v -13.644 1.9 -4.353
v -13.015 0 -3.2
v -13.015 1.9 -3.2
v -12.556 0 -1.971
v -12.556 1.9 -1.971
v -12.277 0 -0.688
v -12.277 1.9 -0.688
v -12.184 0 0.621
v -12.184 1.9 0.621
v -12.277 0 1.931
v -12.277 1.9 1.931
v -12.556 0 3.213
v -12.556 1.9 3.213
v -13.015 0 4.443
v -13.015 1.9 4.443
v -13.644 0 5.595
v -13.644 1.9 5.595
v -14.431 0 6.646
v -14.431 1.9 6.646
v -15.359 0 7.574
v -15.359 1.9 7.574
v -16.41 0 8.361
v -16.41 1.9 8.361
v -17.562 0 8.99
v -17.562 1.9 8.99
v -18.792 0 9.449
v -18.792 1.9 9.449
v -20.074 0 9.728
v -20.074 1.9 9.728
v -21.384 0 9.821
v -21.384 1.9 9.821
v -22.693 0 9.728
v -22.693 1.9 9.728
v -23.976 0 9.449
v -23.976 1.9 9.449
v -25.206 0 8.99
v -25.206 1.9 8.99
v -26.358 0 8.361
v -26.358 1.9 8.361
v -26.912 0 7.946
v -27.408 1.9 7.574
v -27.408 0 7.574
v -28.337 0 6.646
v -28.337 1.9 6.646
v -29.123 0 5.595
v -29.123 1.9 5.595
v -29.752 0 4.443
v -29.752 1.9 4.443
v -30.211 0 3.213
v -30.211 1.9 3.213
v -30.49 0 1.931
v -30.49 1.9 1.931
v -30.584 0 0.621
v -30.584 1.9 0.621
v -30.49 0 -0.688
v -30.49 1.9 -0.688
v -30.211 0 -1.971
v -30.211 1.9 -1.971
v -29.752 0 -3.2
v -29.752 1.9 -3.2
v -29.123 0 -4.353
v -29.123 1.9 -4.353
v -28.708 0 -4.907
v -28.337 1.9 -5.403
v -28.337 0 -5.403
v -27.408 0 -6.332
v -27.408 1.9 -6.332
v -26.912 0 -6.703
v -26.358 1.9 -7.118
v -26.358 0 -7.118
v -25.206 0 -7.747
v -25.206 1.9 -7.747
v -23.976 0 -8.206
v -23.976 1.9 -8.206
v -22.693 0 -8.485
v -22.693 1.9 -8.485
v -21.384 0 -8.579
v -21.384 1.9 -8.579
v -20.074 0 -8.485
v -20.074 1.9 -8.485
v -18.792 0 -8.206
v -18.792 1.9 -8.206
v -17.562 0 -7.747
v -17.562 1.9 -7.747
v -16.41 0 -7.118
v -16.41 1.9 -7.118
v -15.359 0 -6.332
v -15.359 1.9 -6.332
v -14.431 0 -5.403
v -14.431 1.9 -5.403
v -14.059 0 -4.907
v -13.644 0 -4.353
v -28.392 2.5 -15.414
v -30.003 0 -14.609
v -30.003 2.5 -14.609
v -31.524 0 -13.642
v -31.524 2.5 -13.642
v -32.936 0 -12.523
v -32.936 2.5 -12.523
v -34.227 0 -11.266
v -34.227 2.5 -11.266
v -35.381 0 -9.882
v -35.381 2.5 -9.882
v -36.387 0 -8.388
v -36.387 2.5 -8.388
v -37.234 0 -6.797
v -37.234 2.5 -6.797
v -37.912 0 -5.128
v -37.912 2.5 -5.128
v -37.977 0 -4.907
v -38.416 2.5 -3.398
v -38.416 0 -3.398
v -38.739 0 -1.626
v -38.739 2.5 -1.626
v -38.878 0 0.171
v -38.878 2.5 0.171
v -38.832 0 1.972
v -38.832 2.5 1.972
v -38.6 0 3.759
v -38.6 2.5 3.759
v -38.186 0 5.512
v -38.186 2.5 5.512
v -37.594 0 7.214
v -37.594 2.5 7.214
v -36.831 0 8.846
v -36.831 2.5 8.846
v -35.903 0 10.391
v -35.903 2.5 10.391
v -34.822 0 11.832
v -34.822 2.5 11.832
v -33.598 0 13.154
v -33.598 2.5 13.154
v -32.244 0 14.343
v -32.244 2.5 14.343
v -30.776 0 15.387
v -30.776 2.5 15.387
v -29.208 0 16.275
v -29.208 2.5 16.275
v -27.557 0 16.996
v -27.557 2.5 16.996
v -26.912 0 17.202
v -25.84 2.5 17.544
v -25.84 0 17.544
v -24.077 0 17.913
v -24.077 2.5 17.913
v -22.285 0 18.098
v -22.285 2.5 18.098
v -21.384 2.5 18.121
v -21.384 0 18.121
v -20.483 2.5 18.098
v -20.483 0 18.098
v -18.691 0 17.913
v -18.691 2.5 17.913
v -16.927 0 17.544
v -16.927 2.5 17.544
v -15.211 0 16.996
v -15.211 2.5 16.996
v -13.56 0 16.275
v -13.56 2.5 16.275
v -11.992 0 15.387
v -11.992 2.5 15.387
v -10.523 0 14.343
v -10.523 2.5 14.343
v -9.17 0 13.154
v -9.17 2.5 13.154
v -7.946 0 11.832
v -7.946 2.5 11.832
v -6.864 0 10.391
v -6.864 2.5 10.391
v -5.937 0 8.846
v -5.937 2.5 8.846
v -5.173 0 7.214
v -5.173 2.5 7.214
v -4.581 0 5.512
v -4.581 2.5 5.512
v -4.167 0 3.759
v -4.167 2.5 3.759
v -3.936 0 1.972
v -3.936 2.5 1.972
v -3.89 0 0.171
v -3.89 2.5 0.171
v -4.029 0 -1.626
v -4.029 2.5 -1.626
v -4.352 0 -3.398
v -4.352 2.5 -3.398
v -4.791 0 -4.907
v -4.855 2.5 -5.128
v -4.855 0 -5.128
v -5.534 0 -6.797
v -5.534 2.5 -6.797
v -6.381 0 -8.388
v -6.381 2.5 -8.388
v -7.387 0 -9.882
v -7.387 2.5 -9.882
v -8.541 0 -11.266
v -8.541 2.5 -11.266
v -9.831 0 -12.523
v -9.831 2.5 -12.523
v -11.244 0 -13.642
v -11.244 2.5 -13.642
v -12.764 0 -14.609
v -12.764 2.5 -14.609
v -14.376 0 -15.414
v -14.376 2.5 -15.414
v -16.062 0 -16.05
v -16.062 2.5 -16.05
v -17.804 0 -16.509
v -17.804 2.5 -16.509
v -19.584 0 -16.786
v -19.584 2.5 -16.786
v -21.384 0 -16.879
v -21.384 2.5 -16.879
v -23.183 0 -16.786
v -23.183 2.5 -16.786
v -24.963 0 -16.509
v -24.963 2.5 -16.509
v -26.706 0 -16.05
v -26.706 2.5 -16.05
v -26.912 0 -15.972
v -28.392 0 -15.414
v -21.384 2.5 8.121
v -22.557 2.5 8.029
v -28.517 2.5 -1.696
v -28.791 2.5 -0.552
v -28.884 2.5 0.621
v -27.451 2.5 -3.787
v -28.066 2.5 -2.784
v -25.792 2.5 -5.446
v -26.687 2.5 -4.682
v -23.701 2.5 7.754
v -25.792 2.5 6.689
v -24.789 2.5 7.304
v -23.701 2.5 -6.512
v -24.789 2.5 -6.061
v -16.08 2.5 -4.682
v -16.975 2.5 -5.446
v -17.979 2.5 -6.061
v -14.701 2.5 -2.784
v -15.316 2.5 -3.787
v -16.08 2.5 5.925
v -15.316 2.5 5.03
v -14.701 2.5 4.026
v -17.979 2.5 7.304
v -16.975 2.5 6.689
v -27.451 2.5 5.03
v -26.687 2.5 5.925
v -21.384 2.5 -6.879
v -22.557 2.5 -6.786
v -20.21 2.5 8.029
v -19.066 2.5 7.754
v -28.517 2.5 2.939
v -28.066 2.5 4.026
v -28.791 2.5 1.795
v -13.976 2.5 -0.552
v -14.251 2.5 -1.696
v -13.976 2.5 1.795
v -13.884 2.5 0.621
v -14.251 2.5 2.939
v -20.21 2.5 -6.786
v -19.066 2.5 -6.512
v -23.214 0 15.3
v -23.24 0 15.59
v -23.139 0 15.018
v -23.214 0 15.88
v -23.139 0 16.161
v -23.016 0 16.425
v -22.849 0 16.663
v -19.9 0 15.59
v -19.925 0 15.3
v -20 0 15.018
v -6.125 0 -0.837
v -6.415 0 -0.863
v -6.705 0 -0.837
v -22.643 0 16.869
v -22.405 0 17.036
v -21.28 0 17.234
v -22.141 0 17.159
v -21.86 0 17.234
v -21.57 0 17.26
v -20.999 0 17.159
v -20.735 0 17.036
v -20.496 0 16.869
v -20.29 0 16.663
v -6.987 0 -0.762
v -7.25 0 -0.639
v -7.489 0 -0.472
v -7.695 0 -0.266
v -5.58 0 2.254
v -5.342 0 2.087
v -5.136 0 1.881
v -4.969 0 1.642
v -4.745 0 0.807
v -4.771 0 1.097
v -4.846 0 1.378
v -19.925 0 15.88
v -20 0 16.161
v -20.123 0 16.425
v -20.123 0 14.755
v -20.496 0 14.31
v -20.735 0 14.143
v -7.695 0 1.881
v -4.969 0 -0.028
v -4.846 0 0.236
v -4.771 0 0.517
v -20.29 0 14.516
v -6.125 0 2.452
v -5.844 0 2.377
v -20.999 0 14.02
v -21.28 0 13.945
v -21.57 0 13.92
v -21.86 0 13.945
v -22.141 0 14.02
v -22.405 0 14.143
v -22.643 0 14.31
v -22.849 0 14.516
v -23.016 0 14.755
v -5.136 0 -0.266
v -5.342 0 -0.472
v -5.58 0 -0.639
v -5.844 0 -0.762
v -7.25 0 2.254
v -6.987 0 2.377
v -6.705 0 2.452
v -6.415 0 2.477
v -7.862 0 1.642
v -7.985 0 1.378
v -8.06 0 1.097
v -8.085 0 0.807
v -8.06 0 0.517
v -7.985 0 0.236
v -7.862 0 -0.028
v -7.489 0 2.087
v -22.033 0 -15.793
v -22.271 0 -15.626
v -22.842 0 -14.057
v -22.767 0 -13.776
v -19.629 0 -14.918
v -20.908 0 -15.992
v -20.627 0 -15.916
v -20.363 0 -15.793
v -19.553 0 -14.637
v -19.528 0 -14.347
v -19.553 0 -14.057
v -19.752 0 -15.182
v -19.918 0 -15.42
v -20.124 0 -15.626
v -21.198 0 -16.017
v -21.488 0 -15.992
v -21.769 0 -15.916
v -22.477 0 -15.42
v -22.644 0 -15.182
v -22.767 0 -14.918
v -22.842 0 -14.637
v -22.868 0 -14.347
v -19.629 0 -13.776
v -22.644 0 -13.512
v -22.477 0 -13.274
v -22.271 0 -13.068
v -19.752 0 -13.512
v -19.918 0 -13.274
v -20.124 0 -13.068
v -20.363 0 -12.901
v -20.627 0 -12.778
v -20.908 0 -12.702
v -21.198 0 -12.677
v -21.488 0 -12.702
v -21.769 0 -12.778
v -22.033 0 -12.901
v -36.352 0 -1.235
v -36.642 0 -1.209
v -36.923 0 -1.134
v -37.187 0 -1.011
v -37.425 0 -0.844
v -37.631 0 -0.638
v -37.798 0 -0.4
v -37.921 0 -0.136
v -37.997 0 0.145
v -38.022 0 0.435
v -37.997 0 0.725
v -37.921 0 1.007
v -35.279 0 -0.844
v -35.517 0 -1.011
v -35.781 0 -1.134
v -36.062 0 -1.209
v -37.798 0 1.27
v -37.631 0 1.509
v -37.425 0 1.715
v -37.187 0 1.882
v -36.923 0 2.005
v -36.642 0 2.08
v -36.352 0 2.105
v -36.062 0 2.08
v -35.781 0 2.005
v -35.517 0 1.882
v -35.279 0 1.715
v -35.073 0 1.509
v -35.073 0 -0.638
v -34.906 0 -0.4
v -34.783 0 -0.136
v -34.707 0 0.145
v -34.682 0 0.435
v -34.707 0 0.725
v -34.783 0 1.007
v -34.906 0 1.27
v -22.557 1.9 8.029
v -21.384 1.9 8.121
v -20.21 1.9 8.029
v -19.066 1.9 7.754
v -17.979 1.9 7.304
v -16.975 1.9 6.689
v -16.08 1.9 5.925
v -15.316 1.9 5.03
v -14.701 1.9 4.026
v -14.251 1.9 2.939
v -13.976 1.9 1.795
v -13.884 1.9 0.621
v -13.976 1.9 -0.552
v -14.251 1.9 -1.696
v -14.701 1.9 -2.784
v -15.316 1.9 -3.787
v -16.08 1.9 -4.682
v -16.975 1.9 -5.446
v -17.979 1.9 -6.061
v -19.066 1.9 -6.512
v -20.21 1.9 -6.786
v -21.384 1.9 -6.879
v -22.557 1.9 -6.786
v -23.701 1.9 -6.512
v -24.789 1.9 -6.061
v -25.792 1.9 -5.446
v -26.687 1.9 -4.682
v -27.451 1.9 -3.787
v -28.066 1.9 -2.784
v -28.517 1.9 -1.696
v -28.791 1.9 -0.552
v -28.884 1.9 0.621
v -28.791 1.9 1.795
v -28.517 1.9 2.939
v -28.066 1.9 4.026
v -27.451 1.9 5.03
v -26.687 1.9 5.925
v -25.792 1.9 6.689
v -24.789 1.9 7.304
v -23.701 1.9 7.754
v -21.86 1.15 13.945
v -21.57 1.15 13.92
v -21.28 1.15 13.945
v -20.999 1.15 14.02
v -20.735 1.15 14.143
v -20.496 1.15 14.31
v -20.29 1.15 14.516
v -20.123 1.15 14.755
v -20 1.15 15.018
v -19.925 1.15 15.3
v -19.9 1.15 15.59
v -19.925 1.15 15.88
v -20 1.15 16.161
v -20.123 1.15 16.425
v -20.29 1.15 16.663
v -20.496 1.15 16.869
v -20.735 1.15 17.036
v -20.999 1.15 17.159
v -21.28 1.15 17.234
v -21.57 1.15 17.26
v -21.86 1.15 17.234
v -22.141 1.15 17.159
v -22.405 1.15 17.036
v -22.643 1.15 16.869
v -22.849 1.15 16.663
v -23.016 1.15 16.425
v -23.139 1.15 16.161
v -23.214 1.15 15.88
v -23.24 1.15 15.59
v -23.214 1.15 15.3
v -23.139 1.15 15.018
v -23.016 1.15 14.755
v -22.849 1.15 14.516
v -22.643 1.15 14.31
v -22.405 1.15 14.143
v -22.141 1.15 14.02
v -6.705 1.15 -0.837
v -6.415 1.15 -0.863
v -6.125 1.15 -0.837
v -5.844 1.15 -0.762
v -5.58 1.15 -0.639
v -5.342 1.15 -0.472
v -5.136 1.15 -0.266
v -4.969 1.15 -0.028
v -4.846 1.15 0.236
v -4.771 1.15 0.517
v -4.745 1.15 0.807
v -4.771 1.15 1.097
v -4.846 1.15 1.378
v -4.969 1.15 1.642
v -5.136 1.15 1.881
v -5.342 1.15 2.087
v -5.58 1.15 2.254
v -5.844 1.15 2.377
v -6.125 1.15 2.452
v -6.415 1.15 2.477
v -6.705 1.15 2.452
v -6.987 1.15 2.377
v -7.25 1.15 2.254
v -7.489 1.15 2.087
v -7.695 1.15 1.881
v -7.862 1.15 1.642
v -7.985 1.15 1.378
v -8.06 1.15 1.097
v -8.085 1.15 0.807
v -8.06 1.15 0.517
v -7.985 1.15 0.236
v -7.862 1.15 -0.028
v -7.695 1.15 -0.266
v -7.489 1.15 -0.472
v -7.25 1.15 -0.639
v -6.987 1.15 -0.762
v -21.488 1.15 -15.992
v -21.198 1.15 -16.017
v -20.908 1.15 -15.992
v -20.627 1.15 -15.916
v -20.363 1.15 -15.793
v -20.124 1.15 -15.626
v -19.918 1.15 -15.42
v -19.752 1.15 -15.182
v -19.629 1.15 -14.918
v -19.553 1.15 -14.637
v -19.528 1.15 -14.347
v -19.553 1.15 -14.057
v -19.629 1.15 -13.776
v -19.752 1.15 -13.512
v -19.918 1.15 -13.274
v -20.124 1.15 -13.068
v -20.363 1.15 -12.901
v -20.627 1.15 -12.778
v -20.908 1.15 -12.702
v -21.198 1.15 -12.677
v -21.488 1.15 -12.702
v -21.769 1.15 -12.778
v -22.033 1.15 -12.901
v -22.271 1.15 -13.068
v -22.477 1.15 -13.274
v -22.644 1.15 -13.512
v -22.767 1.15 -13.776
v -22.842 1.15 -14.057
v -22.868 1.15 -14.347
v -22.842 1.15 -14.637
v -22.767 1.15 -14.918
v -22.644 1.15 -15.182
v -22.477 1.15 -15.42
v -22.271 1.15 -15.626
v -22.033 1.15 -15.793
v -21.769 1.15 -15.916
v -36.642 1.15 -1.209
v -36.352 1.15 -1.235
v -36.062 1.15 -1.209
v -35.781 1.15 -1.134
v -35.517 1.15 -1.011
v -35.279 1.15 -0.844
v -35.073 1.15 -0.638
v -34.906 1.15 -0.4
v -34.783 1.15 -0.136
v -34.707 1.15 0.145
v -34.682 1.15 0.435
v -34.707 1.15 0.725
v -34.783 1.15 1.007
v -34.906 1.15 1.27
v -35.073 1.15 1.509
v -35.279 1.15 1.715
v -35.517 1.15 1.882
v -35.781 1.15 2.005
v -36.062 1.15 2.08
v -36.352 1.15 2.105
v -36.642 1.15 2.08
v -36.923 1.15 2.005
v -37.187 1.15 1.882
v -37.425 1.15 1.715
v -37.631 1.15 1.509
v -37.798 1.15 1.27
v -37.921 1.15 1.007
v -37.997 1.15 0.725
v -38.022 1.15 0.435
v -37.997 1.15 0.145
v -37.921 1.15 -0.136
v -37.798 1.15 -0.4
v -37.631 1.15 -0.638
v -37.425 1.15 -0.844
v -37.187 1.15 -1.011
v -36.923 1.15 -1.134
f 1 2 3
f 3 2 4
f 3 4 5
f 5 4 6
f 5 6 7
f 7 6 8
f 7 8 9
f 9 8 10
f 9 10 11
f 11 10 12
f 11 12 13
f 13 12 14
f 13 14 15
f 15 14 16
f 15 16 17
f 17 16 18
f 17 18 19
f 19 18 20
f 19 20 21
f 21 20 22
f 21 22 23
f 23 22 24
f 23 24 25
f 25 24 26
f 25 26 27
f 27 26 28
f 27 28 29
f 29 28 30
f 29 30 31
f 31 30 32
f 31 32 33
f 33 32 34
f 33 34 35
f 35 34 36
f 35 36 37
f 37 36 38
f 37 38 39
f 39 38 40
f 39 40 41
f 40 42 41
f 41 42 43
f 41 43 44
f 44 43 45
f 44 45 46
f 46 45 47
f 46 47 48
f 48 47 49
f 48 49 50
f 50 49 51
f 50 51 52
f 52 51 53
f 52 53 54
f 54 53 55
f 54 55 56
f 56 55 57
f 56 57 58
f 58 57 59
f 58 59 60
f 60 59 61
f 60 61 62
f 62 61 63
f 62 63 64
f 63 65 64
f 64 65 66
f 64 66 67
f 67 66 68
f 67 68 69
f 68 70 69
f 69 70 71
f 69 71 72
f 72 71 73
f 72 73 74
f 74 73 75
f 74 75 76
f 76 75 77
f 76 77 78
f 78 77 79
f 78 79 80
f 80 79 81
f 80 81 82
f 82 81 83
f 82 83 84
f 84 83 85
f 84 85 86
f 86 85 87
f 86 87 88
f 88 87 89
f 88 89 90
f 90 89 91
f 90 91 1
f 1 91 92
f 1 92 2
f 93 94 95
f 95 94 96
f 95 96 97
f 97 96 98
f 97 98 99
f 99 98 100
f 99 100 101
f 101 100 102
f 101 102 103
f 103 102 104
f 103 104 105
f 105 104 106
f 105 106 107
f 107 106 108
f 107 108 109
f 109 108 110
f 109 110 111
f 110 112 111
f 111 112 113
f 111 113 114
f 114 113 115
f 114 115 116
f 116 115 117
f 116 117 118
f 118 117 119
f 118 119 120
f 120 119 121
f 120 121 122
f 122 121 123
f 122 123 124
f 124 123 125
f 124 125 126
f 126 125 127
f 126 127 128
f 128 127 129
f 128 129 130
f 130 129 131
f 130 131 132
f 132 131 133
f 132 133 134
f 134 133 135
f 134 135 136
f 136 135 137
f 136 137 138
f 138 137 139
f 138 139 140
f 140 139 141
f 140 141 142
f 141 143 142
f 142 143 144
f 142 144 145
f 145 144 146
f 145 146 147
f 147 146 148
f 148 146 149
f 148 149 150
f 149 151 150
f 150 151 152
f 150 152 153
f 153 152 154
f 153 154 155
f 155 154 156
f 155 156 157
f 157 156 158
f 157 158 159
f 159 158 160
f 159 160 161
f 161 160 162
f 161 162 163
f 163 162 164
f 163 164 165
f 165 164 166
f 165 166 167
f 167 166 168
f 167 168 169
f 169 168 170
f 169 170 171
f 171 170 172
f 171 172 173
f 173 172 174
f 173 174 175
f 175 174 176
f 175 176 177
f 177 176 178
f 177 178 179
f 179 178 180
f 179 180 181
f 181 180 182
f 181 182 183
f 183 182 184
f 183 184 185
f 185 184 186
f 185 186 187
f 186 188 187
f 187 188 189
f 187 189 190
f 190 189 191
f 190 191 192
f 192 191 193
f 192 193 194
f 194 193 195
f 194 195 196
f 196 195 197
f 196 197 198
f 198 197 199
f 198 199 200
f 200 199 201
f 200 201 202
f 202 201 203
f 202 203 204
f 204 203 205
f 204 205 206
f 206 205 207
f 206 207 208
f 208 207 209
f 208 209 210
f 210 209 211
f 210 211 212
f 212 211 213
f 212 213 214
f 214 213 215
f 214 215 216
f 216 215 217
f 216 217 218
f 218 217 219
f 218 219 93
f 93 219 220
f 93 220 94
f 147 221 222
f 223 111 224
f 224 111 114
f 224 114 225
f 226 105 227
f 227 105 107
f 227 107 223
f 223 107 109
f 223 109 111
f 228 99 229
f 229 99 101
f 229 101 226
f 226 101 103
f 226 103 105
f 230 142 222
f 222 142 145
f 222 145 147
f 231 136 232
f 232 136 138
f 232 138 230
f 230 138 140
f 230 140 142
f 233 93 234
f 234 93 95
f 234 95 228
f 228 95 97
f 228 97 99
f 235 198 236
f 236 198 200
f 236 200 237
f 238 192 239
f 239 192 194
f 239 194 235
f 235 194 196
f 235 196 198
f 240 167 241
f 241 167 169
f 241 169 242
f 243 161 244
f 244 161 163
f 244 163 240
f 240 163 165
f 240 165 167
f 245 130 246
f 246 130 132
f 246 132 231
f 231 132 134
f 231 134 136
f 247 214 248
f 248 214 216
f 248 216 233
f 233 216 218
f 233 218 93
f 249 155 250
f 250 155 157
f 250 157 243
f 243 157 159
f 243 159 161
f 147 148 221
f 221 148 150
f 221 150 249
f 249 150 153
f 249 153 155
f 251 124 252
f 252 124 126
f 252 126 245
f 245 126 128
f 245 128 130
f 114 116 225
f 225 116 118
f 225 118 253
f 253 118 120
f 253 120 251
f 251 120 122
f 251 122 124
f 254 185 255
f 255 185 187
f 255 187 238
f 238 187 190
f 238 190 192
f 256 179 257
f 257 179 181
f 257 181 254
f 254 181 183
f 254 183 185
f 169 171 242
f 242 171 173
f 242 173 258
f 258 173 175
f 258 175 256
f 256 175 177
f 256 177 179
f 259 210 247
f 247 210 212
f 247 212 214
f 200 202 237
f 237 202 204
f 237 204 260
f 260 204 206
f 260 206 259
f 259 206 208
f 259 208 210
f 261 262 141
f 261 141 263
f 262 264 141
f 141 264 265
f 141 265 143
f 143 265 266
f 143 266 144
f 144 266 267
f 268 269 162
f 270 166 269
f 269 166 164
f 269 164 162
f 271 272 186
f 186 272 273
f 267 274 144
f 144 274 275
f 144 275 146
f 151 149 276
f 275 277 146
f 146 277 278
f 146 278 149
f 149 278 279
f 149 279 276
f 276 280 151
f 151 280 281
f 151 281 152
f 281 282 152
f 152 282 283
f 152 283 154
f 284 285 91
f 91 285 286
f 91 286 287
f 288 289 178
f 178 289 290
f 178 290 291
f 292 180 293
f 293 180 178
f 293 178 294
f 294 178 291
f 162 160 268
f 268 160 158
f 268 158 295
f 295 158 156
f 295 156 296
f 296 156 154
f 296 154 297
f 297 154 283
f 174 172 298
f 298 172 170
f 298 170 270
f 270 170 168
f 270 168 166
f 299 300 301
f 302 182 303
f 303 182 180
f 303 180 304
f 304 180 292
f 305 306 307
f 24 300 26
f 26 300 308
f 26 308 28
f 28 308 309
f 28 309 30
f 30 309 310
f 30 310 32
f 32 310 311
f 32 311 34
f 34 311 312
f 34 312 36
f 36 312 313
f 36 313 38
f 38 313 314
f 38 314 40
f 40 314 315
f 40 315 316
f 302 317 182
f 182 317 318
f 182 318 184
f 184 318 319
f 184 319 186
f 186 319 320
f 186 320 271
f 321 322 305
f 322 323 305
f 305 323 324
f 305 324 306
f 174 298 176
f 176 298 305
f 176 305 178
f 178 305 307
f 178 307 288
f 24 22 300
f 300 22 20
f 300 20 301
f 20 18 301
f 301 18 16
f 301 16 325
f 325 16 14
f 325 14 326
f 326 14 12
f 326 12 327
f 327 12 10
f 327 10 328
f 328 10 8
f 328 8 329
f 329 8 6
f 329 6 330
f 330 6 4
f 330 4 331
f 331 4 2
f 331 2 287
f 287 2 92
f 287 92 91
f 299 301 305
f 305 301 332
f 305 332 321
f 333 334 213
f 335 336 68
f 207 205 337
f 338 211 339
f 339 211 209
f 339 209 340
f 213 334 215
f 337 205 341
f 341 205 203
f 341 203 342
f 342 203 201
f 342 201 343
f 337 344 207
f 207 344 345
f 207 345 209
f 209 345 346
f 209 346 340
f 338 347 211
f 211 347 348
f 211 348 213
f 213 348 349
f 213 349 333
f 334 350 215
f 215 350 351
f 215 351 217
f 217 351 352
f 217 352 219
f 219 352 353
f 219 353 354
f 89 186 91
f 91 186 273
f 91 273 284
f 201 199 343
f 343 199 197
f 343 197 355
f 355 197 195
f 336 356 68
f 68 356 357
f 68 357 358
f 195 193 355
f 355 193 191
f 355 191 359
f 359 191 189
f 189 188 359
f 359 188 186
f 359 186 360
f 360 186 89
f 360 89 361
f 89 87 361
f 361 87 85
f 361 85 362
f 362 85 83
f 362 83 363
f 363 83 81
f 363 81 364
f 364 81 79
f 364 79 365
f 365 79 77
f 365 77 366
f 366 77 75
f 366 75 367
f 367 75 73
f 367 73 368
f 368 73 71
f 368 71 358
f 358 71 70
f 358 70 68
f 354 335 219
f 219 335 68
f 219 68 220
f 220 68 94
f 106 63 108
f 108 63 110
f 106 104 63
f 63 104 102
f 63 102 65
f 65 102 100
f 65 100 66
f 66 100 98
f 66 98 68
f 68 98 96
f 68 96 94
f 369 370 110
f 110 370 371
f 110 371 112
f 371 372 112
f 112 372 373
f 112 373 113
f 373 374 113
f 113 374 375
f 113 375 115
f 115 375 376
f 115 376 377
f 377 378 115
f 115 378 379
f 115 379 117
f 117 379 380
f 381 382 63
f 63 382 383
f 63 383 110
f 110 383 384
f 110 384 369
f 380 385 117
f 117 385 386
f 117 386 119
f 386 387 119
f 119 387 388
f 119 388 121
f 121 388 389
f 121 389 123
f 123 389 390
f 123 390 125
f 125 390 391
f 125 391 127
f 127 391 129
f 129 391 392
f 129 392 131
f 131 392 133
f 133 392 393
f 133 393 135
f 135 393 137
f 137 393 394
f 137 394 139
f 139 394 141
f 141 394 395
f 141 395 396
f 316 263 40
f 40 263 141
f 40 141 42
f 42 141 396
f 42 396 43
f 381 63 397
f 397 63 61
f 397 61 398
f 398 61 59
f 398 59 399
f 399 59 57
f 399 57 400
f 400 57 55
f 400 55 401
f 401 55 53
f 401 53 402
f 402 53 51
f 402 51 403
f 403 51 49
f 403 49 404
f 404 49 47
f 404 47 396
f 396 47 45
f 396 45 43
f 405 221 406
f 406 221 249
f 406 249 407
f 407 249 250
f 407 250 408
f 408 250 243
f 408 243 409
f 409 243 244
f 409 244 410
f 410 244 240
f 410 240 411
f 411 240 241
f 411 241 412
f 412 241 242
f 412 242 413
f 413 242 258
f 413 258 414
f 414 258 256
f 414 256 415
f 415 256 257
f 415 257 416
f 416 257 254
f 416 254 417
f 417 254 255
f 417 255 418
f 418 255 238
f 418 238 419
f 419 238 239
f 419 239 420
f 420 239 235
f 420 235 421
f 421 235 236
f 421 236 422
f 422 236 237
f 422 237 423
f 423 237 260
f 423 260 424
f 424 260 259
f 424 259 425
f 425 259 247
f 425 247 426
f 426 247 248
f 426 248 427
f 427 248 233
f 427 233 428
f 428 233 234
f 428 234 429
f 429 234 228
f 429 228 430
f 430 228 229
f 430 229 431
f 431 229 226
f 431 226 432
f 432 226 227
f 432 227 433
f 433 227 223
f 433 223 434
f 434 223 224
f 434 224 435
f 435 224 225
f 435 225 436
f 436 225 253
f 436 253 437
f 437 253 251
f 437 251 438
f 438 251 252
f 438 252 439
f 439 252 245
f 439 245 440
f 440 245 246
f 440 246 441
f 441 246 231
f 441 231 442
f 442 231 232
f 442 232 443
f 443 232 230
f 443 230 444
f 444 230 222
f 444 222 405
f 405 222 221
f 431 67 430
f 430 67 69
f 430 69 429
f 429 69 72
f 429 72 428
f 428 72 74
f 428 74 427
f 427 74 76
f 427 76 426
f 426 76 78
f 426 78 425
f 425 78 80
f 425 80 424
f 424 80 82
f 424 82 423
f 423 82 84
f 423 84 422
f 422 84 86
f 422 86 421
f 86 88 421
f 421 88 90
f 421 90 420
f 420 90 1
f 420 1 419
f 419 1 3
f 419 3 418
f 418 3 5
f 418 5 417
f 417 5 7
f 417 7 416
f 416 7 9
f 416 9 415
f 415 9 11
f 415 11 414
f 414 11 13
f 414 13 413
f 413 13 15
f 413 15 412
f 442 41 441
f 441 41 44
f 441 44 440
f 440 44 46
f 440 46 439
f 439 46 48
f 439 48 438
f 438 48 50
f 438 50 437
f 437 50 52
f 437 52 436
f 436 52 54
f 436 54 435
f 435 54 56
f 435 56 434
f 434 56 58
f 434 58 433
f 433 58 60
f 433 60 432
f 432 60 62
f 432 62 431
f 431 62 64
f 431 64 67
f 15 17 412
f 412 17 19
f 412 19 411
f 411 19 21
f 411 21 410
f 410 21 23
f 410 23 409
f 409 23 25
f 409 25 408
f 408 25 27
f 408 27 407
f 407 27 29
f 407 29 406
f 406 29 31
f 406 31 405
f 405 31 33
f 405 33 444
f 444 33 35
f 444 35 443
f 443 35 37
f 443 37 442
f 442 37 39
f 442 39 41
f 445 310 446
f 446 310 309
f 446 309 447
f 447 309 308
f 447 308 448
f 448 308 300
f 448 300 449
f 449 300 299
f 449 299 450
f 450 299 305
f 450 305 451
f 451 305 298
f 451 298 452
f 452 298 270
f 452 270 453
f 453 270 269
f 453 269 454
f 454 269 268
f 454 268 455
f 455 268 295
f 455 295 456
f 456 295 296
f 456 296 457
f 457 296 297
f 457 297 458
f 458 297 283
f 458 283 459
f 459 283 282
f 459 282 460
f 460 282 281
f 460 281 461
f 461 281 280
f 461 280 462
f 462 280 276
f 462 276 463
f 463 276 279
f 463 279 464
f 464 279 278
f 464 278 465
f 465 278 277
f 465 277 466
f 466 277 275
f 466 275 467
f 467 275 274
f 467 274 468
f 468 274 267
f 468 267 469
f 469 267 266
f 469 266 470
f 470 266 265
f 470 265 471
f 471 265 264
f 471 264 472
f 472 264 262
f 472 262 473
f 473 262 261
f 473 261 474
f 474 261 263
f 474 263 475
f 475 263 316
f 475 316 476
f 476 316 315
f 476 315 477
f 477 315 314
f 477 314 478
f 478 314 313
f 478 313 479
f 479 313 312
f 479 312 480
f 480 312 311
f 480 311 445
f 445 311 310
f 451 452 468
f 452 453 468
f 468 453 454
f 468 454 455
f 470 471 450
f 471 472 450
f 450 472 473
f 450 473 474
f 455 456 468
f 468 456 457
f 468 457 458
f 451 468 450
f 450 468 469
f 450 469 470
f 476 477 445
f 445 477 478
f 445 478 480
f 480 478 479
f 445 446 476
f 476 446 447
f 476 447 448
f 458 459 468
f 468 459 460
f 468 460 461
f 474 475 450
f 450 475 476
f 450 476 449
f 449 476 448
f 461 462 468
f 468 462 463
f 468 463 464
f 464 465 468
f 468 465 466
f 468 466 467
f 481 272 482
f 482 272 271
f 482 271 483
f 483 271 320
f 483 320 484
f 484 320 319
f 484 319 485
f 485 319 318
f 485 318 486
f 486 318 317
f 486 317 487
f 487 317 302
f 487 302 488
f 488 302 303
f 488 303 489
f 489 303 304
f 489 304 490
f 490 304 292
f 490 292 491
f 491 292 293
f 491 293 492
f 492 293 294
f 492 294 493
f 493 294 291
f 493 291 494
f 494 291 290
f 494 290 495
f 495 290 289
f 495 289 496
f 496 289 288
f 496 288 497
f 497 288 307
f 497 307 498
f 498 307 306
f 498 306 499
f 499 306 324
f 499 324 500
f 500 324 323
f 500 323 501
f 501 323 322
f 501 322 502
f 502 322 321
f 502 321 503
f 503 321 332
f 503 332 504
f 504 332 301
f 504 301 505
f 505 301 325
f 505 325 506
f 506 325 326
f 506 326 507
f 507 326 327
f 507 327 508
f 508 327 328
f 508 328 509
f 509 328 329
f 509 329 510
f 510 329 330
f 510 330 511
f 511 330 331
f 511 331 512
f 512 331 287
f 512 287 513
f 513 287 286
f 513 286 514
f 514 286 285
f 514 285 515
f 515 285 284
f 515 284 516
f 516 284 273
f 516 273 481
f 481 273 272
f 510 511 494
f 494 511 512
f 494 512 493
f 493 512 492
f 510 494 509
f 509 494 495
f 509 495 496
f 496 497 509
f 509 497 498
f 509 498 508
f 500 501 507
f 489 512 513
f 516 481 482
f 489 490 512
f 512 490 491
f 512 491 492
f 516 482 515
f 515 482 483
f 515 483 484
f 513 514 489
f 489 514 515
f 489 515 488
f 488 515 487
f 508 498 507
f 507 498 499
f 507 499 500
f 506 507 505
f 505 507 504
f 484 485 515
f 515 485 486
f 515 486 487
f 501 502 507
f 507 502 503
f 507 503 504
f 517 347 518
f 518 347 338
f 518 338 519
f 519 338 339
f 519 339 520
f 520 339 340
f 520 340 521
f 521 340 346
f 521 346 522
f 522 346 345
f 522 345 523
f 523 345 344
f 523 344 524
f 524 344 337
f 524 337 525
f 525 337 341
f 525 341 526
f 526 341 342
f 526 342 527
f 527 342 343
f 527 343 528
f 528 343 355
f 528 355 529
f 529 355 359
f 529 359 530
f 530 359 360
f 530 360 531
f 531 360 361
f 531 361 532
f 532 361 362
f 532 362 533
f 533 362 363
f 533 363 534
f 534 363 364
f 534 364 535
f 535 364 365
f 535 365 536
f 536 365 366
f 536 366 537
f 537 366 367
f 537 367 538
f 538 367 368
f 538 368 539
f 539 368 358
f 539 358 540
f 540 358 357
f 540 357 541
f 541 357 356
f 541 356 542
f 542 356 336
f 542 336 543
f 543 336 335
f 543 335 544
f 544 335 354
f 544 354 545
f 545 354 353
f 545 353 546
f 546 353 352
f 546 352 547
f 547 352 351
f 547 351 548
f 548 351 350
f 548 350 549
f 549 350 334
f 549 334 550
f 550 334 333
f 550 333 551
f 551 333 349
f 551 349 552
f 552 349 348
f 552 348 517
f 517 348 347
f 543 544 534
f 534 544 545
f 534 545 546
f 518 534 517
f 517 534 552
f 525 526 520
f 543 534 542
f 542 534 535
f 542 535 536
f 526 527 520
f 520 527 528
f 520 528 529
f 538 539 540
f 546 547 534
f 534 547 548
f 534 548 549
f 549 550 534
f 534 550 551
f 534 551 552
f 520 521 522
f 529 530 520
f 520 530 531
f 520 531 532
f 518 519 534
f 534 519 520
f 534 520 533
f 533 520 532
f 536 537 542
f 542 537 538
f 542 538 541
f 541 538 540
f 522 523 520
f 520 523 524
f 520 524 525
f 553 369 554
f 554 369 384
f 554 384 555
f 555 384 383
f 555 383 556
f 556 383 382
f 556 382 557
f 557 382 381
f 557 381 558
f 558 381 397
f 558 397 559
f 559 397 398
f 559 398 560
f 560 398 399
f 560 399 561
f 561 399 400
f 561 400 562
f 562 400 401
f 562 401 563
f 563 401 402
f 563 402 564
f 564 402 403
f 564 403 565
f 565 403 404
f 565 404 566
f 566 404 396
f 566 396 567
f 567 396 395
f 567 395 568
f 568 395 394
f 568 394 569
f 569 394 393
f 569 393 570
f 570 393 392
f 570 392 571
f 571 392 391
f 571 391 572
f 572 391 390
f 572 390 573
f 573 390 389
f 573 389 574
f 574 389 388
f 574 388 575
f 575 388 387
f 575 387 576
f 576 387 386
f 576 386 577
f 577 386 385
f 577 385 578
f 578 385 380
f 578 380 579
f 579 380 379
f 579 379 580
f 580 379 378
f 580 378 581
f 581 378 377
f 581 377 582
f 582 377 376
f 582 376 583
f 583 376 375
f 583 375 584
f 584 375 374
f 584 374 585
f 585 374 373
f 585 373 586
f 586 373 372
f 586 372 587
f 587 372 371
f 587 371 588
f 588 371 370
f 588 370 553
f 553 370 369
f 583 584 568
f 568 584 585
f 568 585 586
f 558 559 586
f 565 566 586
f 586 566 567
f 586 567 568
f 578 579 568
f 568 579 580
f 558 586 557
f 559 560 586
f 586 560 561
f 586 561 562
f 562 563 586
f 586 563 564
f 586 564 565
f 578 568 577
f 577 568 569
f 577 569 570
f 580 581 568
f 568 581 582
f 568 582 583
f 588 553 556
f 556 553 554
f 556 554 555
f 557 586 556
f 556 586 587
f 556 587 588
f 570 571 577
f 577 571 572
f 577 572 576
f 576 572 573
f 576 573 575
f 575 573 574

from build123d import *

# Parameters (mm, degrees)
SKETCH2_R           = 17.5
SKETCH2_R_2         = 9.2
BOSS_EXTRUDE1_DEPTH = 2.5
BOSS_EXTRUDE2_START = -0.6
SKETCH3_R           = 9.2
SKETCH3_R_2         = 7.5
BOSS_EXTRUDE2_DEPTH = 0.6
SKETCH4_R           = 1.67
CUT_EXTRUDE1_DEPTH  = 1.15
CIRPATTERN1_COUNT   = 4


with BuildPart() as part:
    # Sketch2 → Boss-Extrude1 (new body)
    with BuildSketch(Plane(origin=(0, 0, 0), x_dir=(1, 0, 0), z_dir=(0, 1, 0))):
        with Locations(Location((-21.383734207, -0.621346489, 0), (0, 0, 270))):
            Circle(SKETCH2_R)
        with Locations(Location((-21.383734207, -0.621346489, 0), (0, 0, 270))):
            Circle(SKETCH2_R_2, mode=Mode.SUBTRACT)
    extrude(amount=BOSS_EXTRUDE1_DEPTH)

    # Sketch3 → Boss-Extrude2 (add)
    with BuildSketch(Plane(origin=(0, 2.5, 0), x_dir=(1, 0, 0), z_dir=(0, 1, 0)).offset(BOSS_EXTRUDE2_START)):
        with Locations(Location((-21.383734207, -0.621346489, 0), (0, 0, 270))):
            Circle(SKETCH3_R)
        with Locations(Location((-21.383734207, -0.621346489, 0), (0, 0, 270))):
            Circle(SKETCH3_R_2, mode=Mode.SUBTRACT)
    extrude(amount=BOSS_EXTRUDE2_DEPTH)

    # Sketch4 → Cut-Extrude1 (cut)
    with BuildSketch(Plane.XZ):
        with Locations(Location((-21.569675845, 15.589648339, 0), (0, 0, 270))):
            Circle(SKETCH4_R)
    cut_extrude1 = extrude(amount=-CUT_EXTRUDE1_DEPTH, mode=Mode.SUBTRACT)

    # CirPattern1: Cut-Extrude1 ×4 about axis
    cirpattern1_axis = Axis((-21.383734207, 0, 0.621346489), (0, 1, 0))
    for i in range(1, CIRPATTERN1_COUNT):
        add(cut_extrude1.rotate(cirpattern1_axis, i * 360 / CIRPATTERN1_COUNT), mode=Mode.SUBTRACT)


solid = part.part
